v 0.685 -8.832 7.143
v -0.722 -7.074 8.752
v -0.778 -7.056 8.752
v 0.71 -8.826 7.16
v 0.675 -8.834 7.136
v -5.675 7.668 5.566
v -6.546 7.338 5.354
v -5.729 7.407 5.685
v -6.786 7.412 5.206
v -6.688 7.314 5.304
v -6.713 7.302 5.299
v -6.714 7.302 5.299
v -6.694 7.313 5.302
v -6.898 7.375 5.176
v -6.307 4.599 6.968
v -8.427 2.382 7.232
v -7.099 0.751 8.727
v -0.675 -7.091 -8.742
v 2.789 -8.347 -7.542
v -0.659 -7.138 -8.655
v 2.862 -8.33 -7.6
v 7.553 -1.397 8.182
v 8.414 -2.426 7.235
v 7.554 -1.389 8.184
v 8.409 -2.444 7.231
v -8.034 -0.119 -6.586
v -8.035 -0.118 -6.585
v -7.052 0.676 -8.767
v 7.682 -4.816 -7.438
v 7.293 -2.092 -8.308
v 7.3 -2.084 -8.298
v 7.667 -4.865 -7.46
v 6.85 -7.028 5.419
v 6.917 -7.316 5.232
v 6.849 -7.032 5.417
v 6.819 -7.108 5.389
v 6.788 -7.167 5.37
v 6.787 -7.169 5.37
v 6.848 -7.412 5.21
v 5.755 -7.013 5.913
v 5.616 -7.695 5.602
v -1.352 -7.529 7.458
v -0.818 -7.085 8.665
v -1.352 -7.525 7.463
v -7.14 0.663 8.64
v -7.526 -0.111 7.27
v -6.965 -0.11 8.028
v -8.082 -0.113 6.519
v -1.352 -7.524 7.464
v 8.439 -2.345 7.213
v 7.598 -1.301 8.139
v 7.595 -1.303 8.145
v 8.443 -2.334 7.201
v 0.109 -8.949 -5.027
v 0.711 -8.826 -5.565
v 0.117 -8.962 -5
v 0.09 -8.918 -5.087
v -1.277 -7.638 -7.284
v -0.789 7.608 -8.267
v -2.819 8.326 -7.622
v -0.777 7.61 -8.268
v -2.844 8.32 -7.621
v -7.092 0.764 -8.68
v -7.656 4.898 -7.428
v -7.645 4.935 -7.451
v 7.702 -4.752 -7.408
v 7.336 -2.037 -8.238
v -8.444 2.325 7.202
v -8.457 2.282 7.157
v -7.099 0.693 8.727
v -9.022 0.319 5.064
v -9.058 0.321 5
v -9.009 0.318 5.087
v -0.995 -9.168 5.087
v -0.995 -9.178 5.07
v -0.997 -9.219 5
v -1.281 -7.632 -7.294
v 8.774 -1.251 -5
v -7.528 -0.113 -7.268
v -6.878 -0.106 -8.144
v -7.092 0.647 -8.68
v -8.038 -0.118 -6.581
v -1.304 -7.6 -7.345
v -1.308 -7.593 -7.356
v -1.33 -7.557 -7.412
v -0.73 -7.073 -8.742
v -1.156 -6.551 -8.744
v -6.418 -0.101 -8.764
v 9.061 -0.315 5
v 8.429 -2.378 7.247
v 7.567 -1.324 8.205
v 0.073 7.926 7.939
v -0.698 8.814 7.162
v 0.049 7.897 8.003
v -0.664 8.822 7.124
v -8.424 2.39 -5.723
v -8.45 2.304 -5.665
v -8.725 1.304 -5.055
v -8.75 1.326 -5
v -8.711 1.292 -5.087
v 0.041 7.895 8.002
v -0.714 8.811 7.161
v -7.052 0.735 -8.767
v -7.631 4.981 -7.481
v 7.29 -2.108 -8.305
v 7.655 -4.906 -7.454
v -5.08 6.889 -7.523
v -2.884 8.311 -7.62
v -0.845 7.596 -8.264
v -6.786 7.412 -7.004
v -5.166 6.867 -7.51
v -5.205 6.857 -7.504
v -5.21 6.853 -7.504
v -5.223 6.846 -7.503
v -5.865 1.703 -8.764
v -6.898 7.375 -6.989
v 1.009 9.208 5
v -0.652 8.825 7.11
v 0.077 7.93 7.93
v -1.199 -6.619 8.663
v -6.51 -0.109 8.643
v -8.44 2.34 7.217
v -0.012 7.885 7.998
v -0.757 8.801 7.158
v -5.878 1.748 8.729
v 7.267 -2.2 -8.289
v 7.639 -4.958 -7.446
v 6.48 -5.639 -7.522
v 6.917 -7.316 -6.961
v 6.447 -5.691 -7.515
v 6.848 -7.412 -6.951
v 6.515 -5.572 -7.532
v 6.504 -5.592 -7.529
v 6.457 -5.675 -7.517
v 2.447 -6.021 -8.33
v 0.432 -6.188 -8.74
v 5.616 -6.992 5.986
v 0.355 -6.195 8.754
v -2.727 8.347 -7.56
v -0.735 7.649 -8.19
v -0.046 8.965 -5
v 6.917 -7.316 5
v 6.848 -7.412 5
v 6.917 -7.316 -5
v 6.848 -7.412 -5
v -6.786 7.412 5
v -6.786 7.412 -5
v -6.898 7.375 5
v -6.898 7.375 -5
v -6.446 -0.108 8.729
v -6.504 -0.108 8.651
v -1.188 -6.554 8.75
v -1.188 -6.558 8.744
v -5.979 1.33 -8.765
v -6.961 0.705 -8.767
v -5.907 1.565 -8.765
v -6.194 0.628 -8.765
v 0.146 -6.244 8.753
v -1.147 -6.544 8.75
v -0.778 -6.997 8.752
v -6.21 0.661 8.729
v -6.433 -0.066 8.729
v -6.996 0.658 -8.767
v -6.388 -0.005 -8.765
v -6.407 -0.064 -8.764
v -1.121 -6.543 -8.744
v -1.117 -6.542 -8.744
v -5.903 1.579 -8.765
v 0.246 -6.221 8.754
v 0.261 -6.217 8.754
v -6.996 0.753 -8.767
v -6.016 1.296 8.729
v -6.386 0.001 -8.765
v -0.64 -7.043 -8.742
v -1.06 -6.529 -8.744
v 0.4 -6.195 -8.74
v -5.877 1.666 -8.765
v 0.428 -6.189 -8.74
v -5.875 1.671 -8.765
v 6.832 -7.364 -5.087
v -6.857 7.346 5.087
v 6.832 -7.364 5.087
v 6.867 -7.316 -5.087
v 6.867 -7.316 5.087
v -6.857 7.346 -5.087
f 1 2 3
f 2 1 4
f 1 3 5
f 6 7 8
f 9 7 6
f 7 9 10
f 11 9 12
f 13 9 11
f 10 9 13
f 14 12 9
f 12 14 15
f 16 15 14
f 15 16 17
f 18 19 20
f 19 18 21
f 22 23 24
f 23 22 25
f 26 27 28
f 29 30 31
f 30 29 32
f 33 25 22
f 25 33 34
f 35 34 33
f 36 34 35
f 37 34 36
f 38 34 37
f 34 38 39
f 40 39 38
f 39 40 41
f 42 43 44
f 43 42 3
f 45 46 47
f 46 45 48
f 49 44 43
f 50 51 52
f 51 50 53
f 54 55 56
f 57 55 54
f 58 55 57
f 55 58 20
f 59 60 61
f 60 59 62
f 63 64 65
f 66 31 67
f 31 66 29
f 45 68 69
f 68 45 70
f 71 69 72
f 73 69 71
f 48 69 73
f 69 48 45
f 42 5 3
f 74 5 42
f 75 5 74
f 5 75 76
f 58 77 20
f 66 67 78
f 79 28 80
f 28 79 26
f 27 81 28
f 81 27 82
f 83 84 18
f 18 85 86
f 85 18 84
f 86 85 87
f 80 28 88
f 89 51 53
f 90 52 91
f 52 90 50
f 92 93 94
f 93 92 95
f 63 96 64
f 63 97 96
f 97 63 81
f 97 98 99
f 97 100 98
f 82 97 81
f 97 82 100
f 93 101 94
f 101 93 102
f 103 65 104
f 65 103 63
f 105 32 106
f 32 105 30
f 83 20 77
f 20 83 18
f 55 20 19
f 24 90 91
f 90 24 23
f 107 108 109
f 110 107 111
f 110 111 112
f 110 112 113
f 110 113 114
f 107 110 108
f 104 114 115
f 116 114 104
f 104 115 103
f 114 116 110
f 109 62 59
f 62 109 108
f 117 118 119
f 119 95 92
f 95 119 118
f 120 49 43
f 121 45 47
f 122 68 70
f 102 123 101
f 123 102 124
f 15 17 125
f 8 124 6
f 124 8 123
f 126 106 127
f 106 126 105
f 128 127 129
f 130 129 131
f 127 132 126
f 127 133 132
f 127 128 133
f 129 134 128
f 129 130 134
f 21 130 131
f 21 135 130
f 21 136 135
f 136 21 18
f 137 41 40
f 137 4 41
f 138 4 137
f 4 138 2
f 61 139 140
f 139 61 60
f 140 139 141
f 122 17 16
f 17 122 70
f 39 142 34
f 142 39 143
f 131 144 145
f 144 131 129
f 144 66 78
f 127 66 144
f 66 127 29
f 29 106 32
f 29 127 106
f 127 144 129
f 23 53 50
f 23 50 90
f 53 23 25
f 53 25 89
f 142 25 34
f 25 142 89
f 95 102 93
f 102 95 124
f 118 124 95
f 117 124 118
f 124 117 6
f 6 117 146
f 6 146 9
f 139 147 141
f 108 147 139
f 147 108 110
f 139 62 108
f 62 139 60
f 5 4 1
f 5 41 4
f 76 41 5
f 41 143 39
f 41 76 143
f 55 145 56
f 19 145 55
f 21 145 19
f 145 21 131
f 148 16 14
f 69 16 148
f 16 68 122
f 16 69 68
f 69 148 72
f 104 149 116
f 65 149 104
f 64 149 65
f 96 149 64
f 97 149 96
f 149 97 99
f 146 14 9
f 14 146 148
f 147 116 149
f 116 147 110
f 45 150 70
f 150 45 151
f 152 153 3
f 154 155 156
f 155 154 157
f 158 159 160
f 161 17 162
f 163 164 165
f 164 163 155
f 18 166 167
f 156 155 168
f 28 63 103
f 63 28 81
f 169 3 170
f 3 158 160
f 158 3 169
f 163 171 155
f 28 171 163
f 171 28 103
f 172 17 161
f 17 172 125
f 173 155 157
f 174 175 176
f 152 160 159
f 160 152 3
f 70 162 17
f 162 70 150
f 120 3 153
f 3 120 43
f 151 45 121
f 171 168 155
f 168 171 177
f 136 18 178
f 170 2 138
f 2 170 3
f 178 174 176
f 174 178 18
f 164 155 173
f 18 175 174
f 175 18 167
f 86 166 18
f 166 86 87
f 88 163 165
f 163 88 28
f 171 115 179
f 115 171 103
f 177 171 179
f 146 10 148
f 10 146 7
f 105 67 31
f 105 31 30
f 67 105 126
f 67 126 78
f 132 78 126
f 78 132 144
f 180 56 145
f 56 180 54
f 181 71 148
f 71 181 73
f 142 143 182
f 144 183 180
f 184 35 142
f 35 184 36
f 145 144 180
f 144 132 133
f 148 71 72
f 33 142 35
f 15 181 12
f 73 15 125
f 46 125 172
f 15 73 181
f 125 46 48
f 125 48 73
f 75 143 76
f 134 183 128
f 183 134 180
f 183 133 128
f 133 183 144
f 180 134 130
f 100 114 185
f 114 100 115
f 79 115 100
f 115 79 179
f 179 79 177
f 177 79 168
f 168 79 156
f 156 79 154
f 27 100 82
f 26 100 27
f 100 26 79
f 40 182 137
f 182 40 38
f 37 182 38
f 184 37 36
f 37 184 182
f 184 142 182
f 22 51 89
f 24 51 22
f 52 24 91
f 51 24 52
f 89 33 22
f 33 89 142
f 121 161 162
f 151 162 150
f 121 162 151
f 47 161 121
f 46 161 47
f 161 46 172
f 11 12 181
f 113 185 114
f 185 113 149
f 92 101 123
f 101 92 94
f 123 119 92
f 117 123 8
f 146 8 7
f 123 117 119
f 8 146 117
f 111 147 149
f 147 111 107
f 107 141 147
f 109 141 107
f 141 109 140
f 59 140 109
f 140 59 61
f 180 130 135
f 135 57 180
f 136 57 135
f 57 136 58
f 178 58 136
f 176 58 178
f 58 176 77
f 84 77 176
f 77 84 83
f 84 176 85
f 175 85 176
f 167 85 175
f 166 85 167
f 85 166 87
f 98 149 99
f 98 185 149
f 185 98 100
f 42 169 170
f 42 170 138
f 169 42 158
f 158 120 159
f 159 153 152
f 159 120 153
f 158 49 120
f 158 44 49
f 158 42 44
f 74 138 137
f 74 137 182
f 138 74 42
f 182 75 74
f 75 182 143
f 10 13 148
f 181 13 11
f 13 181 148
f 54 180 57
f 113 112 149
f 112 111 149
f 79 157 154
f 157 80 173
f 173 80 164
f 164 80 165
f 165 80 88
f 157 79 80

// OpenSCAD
// Auto-generated OpenSCAD file

    inner_points = 10*[[0.6816849469680293, -0.7316458385567781, -0.49999999999974415], [-0.6816849469680293, 0.7316458385567781, 0.49999999999974415], [0.9744663562470987, 0.22453356217329945, 0.5000000000002717], [-0.9744663562470987, -0.22453356217329945, -0.5000000000002717], [0.29278140927951324, 0.9561794007299667, -0.49999999999998396], [-0.29278140927951324, -0.9561794007299667, 0.49999999999998396], [0.29278140927921736, 0.9561794007300406, 0.5000000000000159], [-0.29278140927921736, -0.9561794007300406, -0.5000000000000159], [-0.6816849469677333, 0.7316458385567042, -0.5000000000002558], [0.6816849469677333, -0.7316458385567042, 0.5000000000002558], [0.9744663562473946, 0.2245335621732255, -0.4999999999997282], [-0.9744663562473946, -0.2245335621732255, 0.4999999999997282], [-0.12963451256244907, 0.5626084130954843, -1.316496580927806], [0.5520504344054322, -0.1690374254612569, -1.31649658092755], [-0.42241592184181437, -0.39357098763451936, -1.3164965809278217], [-0.12963451256322828, 0.5626084130956789, 1.316496580927646], [0.5520504344046528, -0.1690374254610622, 1.316496580927902], [-0.4224159218425935, -0.39357098763432463, 1.3164965809276301]];

    outer_points = 10*[[-0.7011219638770654, 0.0705453444014307, -0.8680157522490306], [0.7011219638770654, -0.0705453444014307, 0.8680157522490306], [0.7058639190712959, -0.07219505369662516, -0.8640277784741948], [-0.7058639190712959, 0.07219505369662516, 0.8640277784741948], [0.458804168329848, 1.0195580679347902, 0.00028501269092109927], [-0.458804168329848, -1.0195580679347902, -0.00028501269092109927], [1.0909253114088568, 0.2446924239128929, 0.0027536534135308988], [-1.0909253114088568, -0.2446924239128929, -0.0027536534135308988], [0.06900082079805647, 0.7043202996204667, 0.8655471115264208], [-0.06900082079805647, -0.7043202996204667, -0.8655471115264208], [0.07374277599228718, 0.7026705903252722, -0.8664964191968046], [-0.07374277599228718, -0.7026705903252722, 0.8664964191968046], [-0.4455432795266699, 1.3364455455443083, 0.28618363124246243], [-0.8306046718642308, 1.0195580679347902, -0.5805978006452633], [-1.2204080193960225, 0.7043202996204667, 0.28466429819023636], [1.2188273676646122, -0.7037703965220686, 0.2926835453841721], [0.8337659753270512, -1.0206578741315866, -0.5740978865035536], [0.44396262779525975, -1.33589564244591, 0.29116421233194606]];

    // Convex hull for inner set (I)
    module inner_hull() {
        hull() {
            for (p = inner_points) {
                translate(p) sphere(r=0.1);
            }
        }
    }

    // Convex hull for outer set (O) minus inner hull (O \ I)
    module outer_minus_inner() {
        difference() {
            hull() {
                for (p = outer_points) {
                    translate(p) sphere(r=0.1);
                }
            }
            inner_hull(); // Subtract inner hull
        }
    }

    // Convex hull for outer set (O) minus all translated inner hulls
    module outer_minus_AllTranslationInner() {
        difference() {
            hull() {
                for (p = outer_points) {
                    translate(p) sphere(r=0.1);
                }
            }
            hull() {
                translate([0,0,50]) inner_hull();
                translate([0,0,-50]) inner_hull();
            }; // Subtract translated inner hulls
        }
    }

    // Difference between outer_minus_inner and outer_minus_AllTranslationInner
    module outer_minus_inner_diff() {
        difference() {
            // Outer minus inner
            difference() {
                hull() {
                    for (p = outer_points) {
                        translate(p) sphere(r=0.1);
                    }
                }
                inner_hull();
            }

            // Subtract Outer minus AllTranslationInner
            difference() {
                hull() {
                    for (p = outer_points) {
                        translate(p) sphere(r=0.1);
                    }
                }
                hull() {
                    translate([0,0,50]) inner_hull();
                    translate([0,0,-50]) inner_hull();
                };
            }
        }
    }

    // Rendering all with colors applied
    color([1, 1, 0, 1]) outer_minus_inner_diff(); // Opaque yellow
    
